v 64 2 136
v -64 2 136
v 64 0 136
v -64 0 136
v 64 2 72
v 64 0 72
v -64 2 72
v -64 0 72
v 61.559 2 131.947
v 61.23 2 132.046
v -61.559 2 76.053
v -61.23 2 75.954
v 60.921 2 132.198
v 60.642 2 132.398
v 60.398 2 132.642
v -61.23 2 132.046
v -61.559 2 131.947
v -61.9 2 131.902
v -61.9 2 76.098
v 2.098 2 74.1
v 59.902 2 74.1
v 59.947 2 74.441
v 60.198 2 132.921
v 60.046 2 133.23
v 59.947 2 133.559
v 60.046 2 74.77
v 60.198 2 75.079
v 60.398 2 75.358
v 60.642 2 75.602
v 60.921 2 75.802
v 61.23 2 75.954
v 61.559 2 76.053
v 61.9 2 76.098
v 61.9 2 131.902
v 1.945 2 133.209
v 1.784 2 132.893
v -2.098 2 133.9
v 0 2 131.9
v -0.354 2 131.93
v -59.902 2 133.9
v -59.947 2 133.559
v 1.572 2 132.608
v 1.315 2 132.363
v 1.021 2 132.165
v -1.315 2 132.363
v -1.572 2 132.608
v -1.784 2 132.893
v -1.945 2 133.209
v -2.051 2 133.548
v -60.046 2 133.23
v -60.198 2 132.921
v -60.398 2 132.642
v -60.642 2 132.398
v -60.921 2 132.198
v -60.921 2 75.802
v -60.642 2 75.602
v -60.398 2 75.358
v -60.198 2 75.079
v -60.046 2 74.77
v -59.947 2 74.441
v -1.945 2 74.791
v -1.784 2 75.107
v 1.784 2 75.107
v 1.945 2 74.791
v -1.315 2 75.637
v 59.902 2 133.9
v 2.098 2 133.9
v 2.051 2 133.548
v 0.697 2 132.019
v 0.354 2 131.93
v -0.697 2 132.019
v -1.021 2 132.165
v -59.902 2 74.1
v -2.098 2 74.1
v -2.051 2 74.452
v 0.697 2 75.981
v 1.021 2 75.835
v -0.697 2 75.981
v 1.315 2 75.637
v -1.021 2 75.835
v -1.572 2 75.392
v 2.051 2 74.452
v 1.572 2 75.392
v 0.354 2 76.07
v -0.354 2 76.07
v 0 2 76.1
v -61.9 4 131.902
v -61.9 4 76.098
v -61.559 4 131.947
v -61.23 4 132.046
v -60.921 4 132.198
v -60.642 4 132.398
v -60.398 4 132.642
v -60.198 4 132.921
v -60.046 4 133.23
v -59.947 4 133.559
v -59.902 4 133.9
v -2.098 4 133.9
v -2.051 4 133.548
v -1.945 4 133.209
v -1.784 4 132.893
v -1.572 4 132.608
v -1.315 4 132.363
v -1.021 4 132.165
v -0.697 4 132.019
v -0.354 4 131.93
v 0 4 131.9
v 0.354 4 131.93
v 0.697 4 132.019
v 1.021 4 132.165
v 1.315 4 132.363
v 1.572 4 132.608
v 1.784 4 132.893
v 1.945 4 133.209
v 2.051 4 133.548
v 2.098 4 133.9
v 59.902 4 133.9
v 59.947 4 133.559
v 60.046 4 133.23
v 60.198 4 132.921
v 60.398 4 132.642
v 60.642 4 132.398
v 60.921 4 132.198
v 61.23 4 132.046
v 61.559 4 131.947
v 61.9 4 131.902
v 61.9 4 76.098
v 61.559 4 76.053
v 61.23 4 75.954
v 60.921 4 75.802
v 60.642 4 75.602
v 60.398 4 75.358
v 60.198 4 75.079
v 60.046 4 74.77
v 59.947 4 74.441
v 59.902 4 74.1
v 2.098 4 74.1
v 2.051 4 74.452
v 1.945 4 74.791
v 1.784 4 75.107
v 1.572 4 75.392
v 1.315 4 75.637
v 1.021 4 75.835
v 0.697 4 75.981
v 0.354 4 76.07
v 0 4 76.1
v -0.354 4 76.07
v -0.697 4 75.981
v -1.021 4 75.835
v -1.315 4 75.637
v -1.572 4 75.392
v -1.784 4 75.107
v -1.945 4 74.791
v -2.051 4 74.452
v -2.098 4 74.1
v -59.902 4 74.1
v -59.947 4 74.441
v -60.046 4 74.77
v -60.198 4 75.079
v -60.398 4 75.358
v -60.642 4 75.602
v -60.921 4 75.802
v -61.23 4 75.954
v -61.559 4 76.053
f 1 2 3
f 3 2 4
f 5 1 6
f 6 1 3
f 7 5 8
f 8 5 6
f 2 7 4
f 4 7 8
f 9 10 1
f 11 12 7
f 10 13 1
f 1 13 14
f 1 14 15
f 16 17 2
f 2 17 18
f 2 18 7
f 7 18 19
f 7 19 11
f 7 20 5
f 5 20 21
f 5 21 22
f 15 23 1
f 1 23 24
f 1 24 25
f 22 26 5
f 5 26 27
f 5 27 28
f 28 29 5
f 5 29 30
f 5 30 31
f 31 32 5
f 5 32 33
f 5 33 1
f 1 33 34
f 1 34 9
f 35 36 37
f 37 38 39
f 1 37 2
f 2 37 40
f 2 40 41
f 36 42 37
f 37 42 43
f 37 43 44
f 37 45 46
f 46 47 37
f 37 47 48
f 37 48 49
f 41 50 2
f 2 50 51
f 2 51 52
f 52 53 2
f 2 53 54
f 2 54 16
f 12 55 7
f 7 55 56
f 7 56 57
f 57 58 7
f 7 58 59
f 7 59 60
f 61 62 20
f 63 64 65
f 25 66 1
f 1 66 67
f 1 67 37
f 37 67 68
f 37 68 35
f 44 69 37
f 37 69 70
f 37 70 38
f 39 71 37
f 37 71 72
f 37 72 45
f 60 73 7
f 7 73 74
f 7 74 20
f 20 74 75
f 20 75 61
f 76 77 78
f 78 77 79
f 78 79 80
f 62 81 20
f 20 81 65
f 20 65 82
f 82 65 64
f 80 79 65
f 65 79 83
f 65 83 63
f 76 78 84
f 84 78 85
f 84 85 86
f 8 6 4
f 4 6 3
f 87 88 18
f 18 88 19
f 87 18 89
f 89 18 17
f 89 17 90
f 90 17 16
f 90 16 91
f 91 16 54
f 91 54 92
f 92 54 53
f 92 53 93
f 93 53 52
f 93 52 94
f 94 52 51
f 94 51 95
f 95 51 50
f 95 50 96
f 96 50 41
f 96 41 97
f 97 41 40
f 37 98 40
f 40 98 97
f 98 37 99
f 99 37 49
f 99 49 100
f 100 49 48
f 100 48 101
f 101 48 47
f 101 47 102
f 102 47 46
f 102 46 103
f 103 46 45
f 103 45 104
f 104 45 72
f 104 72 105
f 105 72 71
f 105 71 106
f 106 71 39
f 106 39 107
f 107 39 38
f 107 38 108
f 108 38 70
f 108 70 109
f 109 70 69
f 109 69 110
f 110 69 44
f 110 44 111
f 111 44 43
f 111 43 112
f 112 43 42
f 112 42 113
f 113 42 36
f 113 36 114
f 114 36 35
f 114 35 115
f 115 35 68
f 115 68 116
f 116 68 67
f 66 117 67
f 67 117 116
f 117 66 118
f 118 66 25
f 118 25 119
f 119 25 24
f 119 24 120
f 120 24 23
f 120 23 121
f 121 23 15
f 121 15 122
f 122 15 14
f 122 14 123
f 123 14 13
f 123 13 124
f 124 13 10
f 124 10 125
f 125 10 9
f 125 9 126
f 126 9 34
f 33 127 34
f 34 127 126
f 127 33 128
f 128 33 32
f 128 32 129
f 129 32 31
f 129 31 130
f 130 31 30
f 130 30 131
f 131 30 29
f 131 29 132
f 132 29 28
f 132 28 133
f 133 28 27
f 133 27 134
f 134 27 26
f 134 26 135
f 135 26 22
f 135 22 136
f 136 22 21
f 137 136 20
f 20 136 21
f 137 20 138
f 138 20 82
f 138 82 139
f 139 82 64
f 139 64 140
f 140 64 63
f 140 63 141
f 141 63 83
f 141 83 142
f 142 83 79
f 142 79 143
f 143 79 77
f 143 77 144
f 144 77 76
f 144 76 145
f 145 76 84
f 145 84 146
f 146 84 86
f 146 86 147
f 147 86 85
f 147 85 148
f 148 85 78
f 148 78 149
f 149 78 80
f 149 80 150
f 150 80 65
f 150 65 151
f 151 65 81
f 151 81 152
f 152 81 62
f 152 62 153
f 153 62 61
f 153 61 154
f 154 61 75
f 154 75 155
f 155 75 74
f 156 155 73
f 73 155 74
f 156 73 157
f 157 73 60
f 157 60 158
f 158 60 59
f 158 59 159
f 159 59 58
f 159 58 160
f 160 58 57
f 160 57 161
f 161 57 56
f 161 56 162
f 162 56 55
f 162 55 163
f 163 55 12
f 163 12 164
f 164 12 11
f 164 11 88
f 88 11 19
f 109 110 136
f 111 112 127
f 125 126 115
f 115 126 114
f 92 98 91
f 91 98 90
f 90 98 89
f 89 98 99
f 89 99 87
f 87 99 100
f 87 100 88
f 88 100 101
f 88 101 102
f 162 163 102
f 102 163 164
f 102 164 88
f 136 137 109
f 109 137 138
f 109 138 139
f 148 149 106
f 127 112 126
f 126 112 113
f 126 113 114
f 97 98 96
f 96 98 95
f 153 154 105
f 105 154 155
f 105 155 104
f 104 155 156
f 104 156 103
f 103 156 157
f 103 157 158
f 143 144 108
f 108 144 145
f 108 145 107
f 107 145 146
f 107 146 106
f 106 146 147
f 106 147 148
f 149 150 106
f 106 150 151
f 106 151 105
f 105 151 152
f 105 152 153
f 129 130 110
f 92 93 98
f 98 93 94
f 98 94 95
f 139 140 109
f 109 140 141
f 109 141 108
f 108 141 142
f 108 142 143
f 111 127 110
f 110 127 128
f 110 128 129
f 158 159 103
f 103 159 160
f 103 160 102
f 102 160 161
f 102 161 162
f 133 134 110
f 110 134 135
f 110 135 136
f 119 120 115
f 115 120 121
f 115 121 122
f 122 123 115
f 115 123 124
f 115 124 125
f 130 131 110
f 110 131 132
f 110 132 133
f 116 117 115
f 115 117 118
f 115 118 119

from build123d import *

# Parameters (mm, degrees)
SKETCH3_7_W         = 128
SKETCH3_7_H         = 64
BOSS_EXTRUDE4_DEPTH = 2
BOSS_EXTRUDE6_DEPTH = 4


with BuildPart() as part:
    # Sketch3<7> → Boss-Extrude4 (new body)
    with BuildSketch(Plane(origin=(0, 0, 0), x_dir=(1, 0, 0), z_dir=(0, 1, 0))):
        with Locations((0, -104)):
            Rectangle(SKETCH3_7_W, SKETCH3_7_H)
        with BuildLine():
            Line((-2.097617696, -74.1), (-59.902382304, -74.1))
            ThreePointArc((-59.902382304, -74.1), (-60.51507576, -75.48492424), (-61.9, -76.097617696))
            Line((-61.9, -76.097617696), (-61.9, -131.902382304))
            ThreePointArc((-61.9, -131.902382304), (-60.51507576, -132.51507576), (-59.902382304, -133.9))
            Line((-59.902382304, -133.9), (-2.097617696, -133.9))
            ThreePointArc((-2.097617696, -133.9), (0, -131.9), (2.097617696, -133.9))
            Line((2.097617696, -133.9), (59.902382304, -133.9))
            ThreePointArc((59.902382304, -133.9), (60.51507576, -132.51507576), (61.9, -131.902382304))
            Line((61.9, -131.902382304), (61.9, -76.097617696))
            ThreePointArc((61.9, -76.097617696), (60.51507576, -75.48492424), (59.902382304, -74.1))
            Line((59.902382304, -74.1), (2.097617696, -74.1))
            ThreePointArc((2.097617696, -74.1), (0, -76.1), (-2.097617696, -74.1))
        make_face(mode=Mode.SUBTRACT)
    extrude(amount=BOSS_EXTRUDE4_DEPTH)

    # Sketch3 → Boss-Extrude6 (add)
    with BuildSketch(Plane(origin=(0, 0, 0), x_dir=(1, 0, 0), z_dir=(0, 1, 0))):
        with BuildLine():
            Line((-61.9, -76.097617696), (-61.9, -131.902382304))
            ThreePointArc((-61.9, -131.902382304), (-60.51507576, -132.51507576), (-59.902382304, -133.9))
            Line((-59.902382304, -133.9), (-2.097617696, -133.9))
            ThreePointArc((-2.097617696, -133.9), (0, -131.9), (2.097617696, -133.9))
            Line((2.097617696, -133.9), (59.902382304, -133.9))
            ThreePointArc((59.902382304, -133.9), (60.51507576, -132.51507576), (61.9, -131.902382304))
            Line((61.9, -131.902382304), (61.9, -76.097617696))
            ThreePointArc((61.9, -76.097617696), (60.51507576, -75.48492424), (59.902382304, -74.1))
            Line((59.902382304, -74.1), (2.097617696, -74.1))
            ThreePointArc((2.097617696, -74.1), (0, -76.1), (-2.097617696, -74.1))
            Line((-2.097617696, -74.1), (-59.902382304, -74.1))
            ThreePointArc((-59.902382304, -74.1), (-60.51507576, -75.48492424), (-61.9, -76.097617696))
        make_face()
    extrude(amount=BOSS_EXTRUDE6_DEPTH)


solid = part.part
